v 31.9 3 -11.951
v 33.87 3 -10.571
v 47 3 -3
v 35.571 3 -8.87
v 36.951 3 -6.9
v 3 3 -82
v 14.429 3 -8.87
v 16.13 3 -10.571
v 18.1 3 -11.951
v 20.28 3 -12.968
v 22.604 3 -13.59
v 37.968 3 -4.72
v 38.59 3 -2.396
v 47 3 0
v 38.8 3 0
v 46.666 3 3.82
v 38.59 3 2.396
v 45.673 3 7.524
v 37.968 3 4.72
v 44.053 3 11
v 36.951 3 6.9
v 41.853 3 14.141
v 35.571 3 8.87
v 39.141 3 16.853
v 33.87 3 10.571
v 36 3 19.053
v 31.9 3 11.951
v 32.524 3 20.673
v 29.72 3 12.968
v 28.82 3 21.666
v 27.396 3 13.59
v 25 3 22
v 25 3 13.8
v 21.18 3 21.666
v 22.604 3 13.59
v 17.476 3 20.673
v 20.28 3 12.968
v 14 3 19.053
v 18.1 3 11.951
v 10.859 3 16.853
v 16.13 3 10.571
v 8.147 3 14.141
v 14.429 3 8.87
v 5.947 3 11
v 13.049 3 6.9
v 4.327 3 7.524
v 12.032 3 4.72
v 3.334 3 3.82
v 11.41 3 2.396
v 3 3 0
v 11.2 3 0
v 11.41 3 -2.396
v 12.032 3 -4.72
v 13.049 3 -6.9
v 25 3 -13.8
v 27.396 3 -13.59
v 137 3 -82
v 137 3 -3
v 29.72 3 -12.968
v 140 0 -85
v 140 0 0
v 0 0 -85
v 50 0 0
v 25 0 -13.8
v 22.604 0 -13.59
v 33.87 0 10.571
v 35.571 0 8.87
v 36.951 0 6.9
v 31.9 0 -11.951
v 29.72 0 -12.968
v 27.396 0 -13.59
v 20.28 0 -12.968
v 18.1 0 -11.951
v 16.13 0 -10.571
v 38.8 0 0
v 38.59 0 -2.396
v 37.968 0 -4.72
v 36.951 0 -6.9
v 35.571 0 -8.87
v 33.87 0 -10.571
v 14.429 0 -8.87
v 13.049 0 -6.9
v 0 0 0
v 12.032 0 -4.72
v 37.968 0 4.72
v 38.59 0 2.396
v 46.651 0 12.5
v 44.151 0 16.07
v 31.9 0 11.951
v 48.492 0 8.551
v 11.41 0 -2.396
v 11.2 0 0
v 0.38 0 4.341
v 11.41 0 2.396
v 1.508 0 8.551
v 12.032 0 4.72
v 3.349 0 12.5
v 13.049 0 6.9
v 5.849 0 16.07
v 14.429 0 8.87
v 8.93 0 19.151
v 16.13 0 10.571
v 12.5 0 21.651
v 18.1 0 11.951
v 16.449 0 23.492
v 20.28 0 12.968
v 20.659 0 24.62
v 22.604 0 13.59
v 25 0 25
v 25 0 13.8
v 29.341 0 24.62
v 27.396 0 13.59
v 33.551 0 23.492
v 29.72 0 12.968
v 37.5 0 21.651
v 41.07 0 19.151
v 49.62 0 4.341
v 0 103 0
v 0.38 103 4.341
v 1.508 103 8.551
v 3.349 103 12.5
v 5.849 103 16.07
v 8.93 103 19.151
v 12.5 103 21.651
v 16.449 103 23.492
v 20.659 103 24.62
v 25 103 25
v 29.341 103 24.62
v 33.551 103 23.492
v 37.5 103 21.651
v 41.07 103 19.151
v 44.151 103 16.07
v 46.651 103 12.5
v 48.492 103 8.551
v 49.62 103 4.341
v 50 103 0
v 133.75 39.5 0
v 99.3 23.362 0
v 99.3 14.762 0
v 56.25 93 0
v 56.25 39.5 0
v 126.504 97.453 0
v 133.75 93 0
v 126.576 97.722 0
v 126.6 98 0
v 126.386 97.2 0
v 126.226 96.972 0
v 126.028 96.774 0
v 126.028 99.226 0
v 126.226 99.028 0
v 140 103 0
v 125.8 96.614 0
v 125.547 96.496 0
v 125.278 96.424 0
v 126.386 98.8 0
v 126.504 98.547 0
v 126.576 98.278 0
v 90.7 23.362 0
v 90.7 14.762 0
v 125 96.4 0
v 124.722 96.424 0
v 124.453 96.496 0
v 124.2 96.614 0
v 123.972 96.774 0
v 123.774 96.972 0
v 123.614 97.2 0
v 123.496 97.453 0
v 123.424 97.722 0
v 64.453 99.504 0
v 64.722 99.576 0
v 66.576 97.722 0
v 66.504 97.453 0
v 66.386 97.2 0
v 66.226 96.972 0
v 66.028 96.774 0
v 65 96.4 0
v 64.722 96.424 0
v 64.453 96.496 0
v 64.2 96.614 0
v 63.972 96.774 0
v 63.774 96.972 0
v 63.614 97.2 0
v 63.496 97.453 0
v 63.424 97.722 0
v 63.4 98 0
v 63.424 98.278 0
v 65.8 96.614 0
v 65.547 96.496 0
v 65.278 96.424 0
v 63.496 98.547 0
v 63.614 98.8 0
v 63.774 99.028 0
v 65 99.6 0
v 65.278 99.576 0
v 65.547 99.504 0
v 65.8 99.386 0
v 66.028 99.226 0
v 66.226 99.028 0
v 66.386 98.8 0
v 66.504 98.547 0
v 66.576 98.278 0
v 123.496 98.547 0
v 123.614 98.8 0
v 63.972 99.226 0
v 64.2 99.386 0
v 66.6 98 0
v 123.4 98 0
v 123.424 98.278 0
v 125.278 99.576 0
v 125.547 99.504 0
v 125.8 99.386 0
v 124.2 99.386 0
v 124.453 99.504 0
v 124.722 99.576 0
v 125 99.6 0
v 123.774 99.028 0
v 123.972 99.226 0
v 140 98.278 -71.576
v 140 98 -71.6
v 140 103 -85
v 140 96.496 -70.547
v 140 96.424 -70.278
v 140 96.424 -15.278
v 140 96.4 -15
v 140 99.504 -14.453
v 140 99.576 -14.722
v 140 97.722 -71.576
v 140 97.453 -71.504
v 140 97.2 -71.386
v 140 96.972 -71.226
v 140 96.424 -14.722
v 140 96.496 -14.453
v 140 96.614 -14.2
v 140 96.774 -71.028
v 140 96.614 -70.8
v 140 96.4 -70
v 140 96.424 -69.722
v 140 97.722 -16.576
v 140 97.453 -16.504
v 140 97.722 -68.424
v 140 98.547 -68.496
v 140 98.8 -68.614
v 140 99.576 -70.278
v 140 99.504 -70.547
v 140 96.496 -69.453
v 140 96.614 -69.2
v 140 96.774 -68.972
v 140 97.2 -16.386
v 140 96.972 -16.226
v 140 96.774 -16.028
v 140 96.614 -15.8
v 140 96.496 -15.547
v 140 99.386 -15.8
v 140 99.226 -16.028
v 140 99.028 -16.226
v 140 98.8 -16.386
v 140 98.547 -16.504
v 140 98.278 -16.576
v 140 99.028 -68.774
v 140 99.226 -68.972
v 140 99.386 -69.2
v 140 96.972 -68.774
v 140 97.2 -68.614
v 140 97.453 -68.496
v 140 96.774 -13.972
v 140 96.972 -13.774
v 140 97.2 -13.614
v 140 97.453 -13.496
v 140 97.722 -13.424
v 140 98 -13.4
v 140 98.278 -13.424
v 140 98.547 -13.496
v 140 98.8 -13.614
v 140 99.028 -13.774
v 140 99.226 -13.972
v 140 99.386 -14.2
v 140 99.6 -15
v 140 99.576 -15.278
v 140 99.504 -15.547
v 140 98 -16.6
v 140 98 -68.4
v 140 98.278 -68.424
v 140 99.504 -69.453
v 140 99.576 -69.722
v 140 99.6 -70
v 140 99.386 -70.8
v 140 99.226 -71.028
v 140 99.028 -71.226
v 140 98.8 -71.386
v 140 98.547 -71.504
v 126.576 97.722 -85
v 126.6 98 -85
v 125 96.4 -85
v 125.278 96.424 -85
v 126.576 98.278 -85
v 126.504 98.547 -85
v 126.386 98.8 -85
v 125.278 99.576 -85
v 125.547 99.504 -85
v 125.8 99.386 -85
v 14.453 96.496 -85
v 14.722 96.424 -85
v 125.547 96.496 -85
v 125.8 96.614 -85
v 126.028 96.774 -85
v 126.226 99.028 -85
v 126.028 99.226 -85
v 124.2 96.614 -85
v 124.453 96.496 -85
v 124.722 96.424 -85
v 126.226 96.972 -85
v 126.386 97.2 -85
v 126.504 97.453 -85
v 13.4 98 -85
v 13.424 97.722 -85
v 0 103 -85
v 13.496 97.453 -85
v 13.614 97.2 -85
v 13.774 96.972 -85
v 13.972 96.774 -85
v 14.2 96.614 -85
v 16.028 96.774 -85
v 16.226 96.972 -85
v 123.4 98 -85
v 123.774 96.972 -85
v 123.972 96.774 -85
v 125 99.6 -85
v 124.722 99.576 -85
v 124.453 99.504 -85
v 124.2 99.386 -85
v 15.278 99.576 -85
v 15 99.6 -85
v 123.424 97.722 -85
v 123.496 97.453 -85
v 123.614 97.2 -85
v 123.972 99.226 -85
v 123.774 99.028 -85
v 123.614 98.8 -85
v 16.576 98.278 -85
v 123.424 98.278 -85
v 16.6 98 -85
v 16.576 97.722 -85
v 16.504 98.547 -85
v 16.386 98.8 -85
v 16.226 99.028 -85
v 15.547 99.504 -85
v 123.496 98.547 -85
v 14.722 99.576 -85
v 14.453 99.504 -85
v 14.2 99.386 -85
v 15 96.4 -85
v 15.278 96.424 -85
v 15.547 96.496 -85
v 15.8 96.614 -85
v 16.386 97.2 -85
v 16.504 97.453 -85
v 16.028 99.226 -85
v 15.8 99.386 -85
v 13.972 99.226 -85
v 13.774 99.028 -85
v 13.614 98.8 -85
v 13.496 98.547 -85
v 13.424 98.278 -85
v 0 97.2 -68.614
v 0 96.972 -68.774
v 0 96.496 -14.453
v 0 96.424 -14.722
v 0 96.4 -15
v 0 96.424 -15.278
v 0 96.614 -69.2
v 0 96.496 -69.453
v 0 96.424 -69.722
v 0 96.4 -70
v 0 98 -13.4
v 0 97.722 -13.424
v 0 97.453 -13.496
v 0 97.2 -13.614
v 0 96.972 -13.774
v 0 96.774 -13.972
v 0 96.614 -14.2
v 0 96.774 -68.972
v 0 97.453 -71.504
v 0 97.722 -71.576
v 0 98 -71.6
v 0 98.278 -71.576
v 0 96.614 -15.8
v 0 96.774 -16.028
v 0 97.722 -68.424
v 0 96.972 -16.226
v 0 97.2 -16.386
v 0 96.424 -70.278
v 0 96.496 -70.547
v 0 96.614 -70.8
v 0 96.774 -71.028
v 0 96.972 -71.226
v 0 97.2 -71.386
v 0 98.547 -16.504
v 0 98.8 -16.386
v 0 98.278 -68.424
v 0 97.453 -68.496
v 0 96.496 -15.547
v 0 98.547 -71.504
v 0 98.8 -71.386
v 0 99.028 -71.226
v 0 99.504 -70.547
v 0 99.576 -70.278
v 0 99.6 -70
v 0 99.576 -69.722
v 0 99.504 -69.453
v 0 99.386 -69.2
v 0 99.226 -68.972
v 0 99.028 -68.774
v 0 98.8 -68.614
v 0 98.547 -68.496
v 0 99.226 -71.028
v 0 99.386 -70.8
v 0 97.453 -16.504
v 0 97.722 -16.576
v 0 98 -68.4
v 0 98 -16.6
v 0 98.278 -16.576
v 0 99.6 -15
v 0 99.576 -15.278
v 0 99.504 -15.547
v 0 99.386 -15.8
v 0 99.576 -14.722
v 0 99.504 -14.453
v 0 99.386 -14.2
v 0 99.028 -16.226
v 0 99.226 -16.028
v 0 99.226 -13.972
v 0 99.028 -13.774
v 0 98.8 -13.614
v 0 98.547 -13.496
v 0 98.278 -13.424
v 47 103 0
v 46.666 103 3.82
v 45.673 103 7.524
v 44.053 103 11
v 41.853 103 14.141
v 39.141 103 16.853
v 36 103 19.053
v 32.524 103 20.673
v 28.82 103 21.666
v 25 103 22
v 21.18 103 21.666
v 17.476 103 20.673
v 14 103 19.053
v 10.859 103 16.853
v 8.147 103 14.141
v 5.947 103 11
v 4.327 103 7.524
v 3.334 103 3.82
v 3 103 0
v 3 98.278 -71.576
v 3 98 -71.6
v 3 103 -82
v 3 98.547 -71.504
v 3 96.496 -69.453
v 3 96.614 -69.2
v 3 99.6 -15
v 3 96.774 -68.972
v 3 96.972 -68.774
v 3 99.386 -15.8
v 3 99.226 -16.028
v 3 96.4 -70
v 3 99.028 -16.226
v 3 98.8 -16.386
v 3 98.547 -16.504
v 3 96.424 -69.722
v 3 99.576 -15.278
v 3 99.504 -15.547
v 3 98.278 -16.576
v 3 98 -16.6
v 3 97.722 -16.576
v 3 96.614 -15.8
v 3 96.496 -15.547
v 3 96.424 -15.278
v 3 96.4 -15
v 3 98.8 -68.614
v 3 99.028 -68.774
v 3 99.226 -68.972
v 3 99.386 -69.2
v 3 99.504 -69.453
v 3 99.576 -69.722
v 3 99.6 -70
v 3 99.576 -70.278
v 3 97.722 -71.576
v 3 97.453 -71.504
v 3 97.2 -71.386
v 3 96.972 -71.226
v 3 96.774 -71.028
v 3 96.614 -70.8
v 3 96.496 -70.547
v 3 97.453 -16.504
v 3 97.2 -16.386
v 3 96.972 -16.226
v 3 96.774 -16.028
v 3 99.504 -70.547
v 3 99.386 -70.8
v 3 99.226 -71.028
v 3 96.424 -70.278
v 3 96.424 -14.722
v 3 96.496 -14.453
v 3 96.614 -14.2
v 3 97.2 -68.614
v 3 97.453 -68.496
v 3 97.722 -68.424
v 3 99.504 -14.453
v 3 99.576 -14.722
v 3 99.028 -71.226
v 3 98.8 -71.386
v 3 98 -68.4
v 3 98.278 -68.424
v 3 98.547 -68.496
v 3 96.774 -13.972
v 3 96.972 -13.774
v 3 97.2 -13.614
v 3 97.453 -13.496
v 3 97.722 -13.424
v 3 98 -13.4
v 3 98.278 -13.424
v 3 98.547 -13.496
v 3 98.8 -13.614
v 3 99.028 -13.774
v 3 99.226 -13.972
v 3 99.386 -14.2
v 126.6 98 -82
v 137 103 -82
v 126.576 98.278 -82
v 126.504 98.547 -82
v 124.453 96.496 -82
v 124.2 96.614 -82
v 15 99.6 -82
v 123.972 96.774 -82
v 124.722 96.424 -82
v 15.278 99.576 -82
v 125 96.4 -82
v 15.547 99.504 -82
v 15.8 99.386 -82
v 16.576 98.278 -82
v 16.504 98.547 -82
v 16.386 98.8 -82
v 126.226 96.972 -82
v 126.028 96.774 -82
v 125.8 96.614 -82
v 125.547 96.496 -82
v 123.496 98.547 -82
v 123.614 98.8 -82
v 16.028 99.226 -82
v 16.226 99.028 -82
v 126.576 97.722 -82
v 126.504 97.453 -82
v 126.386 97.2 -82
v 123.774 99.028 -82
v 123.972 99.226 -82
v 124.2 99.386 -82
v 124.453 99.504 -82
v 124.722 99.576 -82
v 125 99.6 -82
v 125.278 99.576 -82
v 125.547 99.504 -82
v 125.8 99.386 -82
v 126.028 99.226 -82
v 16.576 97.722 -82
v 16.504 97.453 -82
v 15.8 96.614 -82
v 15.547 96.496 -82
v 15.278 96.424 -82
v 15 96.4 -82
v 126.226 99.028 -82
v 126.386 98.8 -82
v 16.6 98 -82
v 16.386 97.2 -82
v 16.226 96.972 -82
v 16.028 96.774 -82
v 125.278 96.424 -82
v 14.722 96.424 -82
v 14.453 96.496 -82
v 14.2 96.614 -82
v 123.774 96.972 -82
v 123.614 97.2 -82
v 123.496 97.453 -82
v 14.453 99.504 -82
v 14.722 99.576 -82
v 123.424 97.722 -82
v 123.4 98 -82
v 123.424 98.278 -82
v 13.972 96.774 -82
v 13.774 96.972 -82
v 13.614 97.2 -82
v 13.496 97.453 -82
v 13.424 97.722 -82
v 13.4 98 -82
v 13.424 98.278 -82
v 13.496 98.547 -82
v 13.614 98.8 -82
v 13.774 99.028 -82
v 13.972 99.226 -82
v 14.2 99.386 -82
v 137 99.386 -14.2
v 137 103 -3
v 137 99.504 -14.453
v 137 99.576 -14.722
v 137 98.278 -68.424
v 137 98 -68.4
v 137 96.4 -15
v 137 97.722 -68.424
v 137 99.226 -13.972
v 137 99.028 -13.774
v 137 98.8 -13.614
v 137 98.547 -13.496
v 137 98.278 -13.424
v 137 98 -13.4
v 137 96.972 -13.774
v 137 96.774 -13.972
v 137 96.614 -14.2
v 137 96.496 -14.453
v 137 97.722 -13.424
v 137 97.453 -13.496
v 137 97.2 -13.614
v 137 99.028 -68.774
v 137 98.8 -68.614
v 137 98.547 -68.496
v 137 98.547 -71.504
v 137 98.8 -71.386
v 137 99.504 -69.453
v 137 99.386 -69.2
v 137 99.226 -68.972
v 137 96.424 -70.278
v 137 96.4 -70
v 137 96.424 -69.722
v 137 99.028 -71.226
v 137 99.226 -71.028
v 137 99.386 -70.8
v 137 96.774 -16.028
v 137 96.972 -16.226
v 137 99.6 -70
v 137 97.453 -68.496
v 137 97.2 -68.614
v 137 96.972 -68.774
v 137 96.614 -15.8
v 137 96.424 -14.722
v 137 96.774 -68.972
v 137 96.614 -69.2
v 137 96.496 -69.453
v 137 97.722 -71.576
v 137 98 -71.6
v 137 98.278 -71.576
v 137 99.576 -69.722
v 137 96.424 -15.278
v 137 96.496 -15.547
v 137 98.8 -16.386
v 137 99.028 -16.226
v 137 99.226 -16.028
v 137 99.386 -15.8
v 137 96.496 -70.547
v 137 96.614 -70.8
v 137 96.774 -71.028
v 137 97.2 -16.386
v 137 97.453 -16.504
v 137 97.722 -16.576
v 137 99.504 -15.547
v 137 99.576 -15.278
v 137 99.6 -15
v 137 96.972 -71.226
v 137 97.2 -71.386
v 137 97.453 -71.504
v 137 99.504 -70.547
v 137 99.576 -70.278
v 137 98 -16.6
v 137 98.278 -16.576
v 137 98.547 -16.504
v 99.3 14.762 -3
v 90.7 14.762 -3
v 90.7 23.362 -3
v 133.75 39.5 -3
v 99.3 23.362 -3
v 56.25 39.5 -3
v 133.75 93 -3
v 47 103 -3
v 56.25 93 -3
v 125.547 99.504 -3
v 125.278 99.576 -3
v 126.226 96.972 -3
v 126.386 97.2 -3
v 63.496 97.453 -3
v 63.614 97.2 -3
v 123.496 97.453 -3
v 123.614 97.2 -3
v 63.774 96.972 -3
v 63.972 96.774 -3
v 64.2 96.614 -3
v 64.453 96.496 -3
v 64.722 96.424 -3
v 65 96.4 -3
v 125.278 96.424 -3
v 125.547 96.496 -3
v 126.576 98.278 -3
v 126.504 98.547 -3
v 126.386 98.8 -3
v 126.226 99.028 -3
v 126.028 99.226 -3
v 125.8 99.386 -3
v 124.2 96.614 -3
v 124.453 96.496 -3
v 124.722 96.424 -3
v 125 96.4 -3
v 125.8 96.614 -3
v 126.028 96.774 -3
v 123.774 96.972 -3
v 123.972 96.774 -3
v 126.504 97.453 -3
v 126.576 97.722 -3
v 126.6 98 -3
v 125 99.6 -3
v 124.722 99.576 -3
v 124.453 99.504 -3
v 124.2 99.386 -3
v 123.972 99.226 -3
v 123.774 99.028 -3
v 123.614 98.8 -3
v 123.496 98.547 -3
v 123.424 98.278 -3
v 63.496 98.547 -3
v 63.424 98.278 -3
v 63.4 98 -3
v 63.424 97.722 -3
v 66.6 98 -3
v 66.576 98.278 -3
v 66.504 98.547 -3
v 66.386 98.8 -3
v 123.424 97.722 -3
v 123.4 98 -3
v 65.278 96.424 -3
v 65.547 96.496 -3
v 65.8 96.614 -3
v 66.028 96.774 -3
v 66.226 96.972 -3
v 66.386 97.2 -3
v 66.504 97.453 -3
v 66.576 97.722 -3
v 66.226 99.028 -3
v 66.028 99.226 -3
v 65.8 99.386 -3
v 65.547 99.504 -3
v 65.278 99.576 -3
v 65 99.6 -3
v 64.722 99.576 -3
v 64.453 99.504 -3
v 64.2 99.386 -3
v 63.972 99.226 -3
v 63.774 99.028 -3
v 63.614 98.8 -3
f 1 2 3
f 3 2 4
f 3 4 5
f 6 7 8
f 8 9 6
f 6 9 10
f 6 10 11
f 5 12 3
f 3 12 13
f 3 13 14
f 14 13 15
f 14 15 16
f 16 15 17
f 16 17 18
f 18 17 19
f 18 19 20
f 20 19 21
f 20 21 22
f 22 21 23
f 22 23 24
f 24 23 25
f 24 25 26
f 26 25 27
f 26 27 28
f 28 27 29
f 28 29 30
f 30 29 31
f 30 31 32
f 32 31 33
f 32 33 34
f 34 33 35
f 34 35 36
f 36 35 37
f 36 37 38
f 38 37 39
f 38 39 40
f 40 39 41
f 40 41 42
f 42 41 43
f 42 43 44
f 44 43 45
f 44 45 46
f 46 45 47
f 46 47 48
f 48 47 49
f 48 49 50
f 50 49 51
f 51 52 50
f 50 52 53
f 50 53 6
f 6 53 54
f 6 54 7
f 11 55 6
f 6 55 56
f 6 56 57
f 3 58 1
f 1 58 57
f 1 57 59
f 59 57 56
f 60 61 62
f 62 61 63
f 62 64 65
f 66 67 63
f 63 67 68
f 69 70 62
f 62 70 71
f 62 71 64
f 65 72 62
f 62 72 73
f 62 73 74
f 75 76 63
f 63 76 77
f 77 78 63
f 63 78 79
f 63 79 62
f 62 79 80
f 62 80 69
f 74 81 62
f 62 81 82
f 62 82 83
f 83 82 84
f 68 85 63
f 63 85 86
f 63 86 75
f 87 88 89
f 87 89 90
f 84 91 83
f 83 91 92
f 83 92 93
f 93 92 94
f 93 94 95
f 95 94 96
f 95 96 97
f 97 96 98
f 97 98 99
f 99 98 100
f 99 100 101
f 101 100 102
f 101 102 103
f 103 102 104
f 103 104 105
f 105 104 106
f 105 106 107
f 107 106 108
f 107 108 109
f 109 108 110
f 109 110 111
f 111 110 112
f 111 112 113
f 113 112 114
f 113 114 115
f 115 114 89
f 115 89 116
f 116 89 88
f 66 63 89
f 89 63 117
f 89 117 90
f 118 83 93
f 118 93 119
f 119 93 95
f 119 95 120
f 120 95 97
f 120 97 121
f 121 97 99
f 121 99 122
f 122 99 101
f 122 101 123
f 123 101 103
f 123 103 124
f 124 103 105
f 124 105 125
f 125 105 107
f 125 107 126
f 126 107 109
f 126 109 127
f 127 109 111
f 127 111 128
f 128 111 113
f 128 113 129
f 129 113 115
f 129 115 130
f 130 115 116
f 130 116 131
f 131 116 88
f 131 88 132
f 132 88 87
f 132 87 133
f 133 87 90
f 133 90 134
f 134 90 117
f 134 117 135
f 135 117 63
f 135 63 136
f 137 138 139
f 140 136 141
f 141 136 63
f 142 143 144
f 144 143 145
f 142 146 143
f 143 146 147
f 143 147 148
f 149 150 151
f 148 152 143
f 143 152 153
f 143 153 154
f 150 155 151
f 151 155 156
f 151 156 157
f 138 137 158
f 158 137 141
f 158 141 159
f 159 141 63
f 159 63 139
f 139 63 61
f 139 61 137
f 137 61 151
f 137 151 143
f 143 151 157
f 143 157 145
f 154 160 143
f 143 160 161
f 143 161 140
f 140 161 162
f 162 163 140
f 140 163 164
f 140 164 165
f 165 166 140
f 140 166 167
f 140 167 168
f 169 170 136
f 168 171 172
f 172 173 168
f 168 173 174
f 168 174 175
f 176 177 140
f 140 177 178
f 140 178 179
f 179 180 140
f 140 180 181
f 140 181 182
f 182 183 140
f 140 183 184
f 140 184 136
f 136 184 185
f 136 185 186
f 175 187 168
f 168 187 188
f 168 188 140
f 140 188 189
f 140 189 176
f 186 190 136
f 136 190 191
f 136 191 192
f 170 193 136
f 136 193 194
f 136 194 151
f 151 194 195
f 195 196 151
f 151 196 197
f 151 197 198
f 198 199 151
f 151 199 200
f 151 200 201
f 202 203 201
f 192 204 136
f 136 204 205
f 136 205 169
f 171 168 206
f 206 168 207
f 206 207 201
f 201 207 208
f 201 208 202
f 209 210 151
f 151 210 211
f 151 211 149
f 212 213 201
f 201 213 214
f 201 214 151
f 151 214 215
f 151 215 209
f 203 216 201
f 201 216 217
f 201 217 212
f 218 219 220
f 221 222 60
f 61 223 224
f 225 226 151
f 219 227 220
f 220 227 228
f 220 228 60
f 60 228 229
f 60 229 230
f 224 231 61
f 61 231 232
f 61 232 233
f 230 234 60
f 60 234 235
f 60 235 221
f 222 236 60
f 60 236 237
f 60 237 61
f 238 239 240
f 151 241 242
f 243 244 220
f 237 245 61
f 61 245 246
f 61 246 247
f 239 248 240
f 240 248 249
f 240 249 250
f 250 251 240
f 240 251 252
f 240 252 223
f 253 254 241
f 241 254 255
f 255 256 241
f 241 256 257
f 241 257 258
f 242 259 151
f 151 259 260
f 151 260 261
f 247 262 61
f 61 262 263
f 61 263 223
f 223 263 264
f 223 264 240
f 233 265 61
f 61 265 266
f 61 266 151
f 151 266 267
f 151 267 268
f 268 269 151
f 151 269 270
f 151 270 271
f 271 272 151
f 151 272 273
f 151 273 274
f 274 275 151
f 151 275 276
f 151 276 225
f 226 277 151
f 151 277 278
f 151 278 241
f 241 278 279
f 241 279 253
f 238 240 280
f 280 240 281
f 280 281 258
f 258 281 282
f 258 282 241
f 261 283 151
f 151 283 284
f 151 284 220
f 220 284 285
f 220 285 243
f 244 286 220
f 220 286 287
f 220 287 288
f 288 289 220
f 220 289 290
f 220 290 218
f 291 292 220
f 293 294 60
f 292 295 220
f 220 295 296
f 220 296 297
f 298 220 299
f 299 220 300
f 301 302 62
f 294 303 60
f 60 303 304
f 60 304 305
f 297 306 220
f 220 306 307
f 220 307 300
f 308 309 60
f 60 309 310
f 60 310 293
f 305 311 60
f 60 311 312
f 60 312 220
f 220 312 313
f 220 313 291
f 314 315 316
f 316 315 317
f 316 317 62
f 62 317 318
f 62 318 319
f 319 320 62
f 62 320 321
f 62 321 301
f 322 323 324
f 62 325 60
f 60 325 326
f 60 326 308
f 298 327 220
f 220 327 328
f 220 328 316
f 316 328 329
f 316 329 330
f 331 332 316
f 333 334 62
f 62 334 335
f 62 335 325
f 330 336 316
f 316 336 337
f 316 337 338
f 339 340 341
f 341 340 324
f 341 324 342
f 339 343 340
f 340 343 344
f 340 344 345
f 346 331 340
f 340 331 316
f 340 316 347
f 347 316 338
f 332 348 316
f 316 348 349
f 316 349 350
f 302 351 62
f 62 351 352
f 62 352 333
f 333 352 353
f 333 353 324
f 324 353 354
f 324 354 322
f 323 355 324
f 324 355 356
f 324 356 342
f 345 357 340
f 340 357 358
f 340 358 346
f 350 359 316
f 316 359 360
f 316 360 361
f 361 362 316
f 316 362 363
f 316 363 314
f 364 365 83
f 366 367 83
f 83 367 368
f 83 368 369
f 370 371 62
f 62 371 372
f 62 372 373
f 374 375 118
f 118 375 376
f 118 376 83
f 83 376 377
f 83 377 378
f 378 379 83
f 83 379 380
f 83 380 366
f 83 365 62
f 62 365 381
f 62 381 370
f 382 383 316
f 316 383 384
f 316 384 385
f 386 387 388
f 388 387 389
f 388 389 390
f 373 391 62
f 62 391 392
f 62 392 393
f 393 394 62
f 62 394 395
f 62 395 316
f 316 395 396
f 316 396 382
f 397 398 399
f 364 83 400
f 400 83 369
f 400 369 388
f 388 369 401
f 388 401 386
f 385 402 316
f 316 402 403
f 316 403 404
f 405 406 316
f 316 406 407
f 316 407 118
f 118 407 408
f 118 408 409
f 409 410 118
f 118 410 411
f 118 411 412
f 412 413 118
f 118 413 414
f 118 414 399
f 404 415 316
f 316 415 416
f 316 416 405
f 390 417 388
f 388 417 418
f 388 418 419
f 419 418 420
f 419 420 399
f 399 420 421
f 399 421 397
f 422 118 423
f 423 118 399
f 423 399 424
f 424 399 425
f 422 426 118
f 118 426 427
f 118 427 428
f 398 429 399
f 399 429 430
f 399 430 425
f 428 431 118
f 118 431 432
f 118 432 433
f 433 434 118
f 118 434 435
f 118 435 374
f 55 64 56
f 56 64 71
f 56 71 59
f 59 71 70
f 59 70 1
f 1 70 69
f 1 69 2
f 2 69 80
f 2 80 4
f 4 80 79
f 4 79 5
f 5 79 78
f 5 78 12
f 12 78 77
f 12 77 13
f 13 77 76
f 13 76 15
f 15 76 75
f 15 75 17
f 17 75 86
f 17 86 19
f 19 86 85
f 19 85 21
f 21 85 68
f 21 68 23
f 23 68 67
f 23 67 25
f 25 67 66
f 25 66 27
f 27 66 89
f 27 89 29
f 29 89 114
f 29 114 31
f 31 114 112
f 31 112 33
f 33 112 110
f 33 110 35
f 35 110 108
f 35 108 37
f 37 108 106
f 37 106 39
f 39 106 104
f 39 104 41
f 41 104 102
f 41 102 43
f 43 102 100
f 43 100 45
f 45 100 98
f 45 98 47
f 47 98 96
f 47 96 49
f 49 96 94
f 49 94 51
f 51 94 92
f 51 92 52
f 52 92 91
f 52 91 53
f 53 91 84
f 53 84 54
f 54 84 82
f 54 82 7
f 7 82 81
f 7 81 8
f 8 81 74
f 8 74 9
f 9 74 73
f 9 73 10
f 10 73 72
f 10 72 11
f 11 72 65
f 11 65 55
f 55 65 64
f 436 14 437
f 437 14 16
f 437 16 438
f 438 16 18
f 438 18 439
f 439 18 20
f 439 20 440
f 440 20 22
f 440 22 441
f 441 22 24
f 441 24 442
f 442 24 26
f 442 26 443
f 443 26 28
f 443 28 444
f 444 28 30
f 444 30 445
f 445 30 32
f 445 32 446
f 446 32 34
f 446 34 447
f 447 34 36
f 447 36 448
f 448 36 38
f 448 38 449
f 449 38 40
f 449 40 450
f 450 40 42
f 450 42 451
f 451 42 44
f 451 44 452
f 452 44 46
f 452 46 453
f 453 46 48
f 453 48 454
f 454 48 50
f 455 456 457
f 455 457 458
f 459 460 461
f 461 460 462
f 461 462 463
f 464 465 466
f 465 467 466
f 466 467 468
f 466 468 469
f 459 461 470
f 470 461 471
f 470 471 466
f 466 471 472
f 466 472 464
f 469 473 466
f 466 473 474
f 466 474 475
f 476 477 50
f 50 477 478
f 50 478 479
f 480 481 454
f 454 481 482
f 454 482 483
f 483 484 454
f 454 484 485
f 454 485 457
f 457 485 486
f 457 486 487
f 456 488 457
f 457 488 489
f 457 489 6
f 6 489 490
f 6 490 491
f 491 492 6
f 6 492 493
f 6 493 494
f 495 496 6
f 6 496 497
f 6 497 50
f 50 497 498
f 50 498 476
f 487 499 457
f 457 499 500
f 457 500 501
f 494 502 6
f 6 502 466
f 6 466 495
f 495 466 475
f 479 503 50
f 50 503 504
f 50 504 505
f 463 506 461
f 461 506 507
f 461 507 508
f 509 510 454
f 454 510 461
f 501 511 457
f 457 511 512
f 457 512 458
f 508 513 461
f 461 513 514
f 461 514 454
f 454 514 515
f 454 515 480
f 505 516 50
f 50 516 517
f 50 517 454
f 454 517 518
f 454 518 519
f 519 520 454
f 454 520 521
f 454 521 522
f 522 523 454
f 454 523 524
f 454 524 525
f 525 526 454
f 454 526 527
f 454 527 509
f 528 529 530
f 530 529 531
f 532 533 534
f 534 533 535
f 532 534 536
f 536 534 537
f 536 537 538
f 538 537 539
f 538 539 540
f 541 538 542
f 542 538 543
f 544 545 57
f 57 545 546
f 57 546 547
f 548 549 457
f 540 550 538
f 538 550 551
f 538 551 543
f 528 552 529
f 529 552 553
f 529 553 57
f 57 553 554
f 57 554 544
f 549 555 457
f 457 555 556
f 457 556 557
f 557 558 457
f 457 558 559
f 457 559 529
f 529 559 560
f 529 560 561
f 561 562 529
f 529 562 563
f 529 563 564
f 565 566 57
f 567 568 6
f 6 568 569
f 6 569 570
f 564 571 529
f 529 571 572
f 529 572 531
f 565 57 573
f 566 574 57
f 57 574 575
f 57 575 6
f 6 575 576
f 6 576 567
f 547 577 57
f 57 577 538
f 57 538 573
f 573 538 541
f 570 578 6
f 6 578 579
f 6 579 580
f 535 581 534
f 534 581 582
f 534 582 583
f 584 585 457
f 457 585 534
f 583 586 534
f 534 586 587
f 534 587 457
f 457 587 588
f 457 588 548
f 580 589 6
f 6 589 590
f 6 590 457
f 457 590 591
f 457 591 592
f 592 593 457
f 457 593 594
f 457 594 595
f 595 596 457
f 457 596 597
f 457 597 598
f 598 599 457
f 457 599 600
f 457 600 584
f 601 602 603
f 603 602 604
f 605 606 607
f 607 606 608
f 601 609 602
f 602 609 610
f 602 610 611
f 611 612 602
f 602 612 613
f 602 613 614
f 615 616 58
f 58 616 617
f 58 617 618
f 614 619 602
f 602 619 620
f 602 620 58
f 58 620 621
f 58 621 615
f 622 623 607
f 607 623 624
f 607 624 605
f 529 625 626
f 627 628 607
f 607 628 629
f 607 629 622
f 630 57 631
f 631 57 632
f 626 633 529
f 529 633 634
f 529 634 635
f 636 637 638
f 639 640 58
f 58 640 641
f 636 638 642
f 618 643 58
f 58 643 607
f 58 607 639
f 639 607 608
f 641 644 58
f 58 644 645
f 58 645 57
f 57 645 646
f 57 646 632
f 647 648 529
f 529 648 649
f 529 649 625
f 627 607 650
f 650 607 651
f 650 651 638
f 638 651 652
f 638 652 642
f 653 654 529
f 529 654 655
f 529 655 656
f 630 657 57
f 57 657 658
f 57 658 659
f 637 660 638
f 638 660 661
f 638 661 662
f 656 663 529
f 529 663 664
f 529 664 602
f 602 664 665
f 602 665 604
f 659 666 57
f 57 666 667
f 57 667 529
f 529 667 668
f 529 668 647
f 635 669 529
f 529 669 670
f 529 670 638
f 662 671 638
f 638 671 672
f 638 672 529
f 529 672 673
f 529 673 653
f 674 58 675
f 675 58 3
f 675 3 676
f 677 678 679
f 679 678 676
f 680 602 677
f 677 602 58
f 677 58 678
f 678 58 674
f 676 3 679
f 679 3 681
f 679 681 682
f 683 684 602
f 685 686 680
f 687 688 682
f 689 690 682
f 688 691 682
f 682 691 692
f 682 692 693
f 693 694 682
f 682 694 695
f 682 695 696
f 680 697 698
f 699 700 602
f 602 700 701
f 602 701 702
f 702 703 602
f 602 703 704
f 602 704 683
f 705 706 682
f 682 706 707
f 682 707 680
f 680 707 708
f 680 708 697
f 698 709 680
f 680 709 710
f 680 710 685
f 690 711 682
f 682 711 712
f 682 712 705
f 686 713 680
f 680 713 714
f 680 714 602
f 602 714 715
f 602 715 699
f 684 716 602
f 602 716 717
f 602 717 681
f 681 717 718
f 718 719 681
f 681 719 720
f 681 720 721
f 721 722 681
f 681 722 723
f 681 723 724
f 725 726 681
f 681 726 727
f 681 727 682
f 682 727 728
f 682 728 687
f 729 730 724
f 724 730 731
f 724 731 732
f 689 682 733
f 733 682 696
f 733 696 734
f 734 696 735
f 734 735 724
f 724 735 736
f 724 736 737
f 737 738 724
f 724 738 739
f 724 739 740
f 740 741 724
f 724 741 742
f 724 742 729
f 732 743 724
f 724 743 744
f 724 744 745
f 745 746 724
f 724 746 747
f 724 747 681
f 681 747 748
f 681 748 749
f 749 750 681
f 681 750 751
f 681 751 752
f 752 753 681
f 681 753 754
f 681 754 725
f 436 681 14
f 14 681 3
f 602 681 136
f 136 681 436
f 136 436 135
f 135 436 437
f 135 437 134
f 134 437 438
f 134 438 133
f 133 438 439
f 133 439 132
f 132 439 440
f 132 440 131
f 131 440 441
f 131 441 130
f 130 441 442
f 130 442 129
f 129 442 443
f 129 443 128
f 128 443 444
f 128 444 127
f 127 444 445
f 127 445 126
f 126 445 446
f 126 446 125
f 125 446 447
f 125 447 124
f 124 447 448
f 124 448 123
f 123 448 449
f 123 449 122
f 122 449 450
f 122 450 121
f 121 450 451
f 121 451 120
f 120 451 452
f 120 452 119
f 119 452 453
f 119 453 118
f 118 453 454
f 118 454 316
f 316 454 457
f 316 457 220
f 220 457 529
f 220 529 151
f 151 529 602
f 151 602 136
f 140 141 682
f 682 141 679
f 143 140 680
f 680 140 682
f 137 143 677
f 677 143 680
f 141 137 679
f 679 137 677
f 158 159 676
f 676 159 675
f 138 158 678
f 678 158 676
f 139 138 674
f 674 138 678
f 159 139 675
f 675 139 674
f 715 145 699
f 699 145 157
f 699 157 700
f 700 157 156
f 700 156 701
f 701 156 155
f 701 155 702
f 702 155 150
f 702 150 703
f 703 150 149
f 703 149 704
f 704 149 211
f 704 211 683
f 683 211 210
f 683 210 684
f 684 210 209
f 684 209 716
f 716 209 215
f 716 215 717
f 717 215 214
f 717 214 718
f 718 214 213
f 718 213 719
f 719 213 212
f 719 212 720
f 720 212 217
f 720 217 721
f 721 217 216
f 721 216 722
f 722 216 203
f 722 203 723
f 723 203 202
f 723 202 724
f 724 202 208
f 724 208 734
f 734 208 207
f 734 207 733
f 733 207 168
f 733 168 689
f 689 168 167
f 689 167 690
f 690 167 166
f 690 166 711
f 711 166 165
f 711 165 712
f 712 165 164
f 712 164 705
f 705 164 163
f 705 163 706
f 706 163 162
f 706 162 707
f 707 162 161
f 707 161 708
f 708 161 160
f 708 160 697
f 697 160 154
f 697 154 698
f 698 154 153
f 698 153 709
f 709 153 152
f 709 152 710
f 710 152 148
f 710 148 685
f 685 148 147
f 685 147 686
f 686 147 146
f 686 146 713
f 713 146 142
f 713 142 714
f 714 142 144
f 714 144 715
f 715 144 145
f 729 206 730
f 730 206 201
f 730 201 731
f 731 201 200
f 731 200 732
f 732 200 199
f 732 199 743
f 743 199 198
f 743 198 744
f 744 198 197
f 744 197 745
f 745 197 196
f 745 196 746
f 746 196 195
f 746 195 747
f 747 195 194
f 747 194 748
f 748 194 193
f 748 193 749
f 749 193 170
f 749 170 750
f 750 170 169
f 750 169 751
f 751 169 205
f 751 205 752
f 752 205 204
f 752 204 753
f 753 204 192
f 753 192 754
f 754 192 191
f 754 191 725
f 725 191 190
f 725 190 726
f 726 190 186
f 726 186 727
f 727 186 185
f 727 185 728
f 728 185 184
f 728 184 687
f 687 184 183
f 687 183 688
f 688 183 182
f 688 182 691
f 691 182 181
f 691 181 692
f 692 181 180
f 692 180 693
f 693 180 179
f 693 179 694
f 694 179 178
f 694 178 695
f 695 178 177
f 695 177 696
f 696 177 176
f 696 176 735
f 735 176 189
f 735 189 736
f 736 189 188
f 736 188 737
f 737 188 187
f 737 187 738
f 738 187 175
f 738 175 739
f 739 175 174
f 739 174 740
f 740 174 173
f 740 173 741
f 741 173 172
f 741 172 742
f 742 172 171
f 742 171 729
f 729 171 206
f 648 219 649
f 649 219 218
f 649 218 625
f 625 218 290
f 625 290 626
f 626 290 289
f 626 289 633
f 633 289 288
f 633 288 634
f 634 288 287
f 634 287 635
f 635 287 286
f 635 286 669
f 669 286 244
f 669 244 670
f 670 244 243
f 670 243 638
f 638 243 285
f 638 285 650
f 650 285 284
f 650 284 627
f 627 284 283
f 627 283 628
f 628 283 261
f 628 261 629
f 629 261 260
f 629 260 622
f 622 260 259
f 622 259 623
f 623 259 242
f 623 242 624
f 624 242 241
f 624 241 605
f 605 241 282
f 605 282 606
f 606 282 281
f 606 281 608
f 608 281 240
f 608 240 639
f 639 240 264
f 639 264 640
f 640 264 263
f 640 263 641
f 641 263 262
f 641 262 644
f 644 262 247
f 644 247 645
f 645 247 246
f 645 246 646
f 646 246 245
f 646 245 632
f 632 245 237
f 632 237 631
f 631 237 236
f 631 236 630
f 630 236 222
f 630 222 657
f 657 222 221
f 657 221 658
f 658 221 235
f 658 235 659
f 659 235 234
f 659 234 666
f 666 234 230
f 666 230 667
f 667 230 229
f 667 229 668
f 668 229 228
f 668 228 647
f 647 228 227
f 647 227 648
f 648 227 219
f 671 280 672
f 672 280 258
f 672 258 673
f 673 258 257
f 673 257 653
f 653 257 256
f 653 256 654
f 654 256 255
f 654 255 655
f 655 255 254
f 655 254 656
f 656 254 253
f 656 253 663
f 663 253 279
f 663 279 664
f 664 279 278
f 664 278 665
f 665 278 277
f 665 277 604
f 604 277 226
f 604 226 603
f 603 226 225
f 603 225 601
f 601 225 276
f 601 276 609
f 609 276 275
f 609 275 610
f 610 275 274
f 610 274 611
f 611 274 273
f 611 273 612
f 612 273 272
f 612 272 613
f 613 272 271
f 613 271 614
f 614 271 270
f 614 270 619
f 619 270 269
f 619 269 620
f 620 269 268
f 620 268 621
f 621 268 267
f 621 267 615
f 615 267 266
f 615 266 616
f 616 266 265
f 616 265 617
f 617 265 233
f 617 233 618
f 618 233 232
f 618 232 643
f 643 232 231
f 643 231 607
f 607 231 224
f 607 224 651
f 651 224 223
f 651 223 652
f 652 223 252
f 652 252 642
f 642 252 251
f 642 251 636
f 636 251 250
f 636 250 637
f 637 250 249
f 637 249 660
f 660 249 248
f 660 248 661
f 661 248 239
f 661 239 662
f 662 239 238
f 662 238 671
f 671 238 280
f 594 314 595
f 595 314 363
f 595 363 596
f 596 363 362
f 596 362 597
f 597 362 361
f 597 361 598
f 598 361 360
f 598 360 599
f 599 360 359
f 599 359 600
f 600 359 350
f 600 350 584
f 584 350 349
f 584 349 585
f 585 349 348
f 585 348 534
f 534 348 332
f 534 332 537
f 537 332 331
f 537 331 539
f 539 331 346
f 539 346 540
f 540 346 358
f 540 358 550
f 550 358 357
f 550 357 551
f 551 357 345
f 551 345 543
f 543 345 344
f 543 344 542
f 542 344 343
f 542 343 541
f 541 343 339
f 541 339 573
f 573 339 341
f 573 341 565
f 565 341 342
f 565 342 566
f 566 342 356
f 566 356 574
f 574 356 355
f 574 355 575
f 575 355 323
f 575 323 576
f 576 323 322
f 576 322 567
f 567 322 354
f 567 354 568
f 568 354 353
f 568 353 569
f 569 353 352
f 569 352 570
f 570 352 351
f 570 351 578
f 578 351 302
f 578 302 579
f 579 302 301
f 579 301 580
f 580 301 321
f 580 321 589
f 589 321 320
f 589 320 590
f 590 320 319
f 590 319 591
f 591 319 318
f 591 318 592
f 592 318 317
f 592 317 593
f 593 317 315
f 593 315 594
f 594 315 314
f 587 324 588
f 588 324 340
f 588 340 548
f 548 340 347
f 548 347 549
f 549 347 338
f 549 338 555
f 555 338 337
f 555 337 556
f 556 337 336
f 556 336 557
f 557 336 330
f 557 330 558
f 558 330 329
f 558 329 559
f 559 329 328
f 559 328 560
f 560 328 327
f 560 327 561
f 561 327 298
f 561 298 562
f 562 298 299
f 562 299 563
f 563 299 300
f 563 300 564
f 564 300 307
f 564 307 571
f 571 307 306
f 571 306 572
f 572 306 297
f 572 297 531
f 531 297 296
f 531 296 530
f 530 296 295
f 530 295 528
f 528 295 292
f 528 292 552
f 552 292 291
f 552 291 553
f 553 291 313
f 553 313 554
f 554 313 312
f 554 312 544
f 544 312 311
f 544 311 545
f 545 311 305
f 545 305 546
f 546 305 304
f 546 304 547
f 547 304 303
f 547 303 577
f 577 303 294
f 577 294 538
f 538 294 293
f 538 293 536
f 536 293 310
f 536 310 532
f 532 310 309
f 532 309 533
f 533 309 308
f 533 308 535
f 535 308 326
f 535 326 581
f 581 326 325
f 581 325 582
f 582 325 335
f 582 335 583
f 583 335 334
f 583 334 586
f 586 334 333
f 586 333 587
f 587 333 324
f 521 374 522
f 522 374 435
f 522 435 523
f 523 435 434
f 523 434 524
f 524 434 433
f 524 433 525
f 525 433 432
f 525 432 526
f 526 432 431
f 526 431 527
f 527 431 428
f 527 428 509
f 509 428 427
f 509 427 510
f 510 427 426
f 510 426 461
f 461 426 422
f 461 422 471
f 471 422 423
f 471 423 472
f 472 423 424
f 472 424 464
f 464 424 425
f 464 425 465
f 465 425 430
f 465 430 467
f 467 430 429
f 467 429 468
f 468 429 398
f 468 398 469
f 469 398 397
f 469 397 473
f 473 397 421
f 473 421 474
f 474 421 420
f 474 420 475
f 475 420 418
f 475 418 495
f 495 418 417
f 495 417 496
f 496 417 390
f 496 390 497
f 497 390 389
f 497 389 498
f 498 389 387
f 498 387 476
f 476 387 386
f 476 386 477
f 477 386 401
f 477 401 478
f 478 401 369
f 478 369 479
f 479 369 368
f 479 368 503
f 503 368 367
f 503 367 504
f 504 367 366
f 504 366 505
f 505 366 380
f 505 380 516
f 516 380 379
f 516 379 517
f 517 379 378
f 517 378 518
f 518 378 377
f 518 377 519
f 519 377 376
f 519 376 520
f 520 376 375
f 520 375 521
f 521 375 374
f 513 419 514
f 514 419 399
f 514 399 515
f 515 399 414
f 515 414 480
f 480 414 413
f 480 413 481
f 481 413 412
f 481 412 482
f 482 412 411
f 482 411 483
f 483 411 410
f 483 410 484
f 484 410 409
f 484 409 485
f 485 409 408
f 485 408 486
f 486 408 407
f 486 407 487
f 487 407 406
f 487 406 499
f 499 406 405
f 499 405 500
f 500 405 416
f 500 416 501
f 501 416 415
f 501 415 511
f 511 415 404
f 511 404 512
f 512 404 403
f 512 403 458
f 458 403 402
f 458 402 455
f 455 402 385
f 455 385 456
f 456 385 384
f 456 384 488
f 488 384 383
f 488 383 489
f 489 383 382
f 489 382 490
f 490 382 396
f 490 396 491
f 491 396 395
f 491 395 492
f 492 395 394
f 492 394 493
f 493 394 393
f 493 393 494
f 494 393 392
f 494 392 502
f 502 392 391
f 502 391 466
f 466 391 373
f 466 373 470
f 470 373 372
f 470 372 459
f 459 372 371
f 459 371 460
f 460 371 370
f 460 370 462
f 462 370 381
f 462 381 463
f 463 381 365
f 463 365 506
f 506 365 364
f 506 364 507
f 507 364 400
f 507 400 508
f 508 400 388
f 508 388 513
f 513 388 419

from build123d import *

# Parameters (mm, degrees)
IZIM1_R                     = 13.8
Y_KSEKLIK_EKSTR_ZYON1_DEPTH = 3
Y_KSEKLIK_EKSTR_ZYON2_DEPTH = 100
IZIM3_W                     = 77.5
IZIM3_H                     = 53.5
KES_EKSTR_ZYON1_DEPTH       = 10
IZIM4_W                     = 8.6
IZIM4_H                     = 8.6
KES_EKSTR_ZYON2_DEPTH       = 10
IZIM5_R                     = 1.6
KES_EKSTR_ZYON3_DEPTH       = 10
IZIM6_R                     = 1.6
KES_EKSTR_ZYON4_DEPTH       = 10
KES_EKSTR_ZYON5_START       = -10
IZIM7_R                     = 1.6
KES_EKSTR_ZYON5_DEPTH       = 10
KES_EKSTR_ZYON6_START       = -10
IZIM8_R                     = 1.6
KES_EKSTR_ZYON6_DEPTH       = 10


with BuildPart() as part:
    # Çizim1 → Yükseklik-Ekstrüzyon1 (new body)
    with BuildSketch(Plane(origin=(0, 0, 0), x_dir=(1, 0, 0), z_dir=(0, 1, 0))):
        with BuildLine():
            Line((50, 0), (140, 0))
            Line((140, 0), (140, 85))
            Line((140, 85), (0, 85))
            Line((0, 85), (0, 0))
            ThreePointArc((0, 0), (25, -25), (50, 0))
        make_face()
        with Locations(Location((25, 0, 0), (0, 0, 270))):
            Circle(IZIM1_R, mode=Mode.SUBTRACT)
    extrude(amount=Y_KSEKLIK_EKSTR_ZYON1_DEPTH)

    # Çizim2 → Yükseklik-Ekstrüzyon2 (add)
    with BuildSketch(Plane(origin=(0, 3, 0), x_dir=(1, 0, 0), z_dir=(0, 1, 0))):
        with BuildLine():
            Line((140, 85), (0, 85))
            Line((0, 85), (0, 0))
            ThreePointArc((0, 0), (25, -25), (50, 0))
            Line((50, 0), (140, 0))
            Line((140, 0), (140, 85))
        make_face()
        with BuildLine():
            Line((3, 0), (3, 3))
            Line((3, 3), (3, 82))
            Line((3, 82), (137, 82))
            Line((137, 82), (137, 3))
            Line((137, 3), (47, 3))
            Line((47, 3), (47, 0))
            ThreePointArc((47, 0), (25, -22), (3, 0))
        make_face(mode=Mode.SUBTRACT)
    extrude(amount=Y_KSEKLIK_EKSTR_ZYON2_DEPTH)

    # Çizim3 → Kes-Ekstrüzyon1 (cut)
    with BuildSketch(Plane.XY):
        with Locations((95, 66.25)):
            Rectangle(IZIM3_W, IZIM3_H)
    extrude(amount=-KES_EKSTR_ZYON1_DEPTH, mode=Mode.SUBTRACT)

    # Çizim4 → Kes-Ekstrüzyon2 (cut)
    with BuildSketch(Plane.XY):
        with Locations((95, 19.062)):
            Rectangle(IZIM4_W, IZIM4_H)
    extrude(amount=-KES_EKSTR_ZYON2_DEPTH, mode=Mode.SUBTRACT)

    # Çizim5 → Kes-Ekstrüzyon3 (cut)
    with BuildSketch(Plane.XY):
        with Locations((65, 98)):
            Circle(IZIM5_R)
        with Locations((125, 98)):
            Circle(IZIM5_R)
    extrude(amount=-KES_EKSTR_ZYON3_DEPTH, mode=Mode.SUBTRACT)

    # Çizim6 → Kes-Ekstrüzyon4 (cut)
    with BuildSketch(Plane(origin=(140, 0, 0), x_dir=(0, 0, -1), z_dir=(1, 0, 0))):
        with Locations((15, 98)):
            Circle(IZIM6_R)
        with Locations((70, 98)):
            Circle(IZIM6_R)
    extrude(amount=-KES_EKSTR_ZYON4_DEPTH, mode=Mode.SUBTRACT)

    # Çizim7 → Kes-Ekstrüzyon5 (cut)
    with BuildSketch(Plane(origin=(0, 0, -85), x_dir=(-1, 0, 0), z_dir=(0, 0, -1)).offset(KES_EKSTR_ZYON5_START)):
        with Locations(Location((-125, 98, 0), (0, 0, 180))):
            Circle(IZIM7_R)
        with Locations((-15, 98)):
            Circle(IZIM7_R)
    extrude(amount=KES_EKSTR_ZYON5_DEPTH, mode=Mode.SUBTRACT)

    # Çizim8 → Kes-Ekstrüzyon6 (cut)
    with BuildSketch(Plane.ZY.offset(KES_EKSTR_ZYON6_START)):
        with Locations(Location((-70, 98, 0), (0, 0, 180))):
            Circle(IZIM8_R)
        with Locations(Location((-15, 98, 0), (0, 0, 180))):
            Circle(IZIM8_R)
    extrude(amount=KES_EKSTR_ZYON6_DEPTH, mode=Mode.SUBTRACT)


solid = part.part
